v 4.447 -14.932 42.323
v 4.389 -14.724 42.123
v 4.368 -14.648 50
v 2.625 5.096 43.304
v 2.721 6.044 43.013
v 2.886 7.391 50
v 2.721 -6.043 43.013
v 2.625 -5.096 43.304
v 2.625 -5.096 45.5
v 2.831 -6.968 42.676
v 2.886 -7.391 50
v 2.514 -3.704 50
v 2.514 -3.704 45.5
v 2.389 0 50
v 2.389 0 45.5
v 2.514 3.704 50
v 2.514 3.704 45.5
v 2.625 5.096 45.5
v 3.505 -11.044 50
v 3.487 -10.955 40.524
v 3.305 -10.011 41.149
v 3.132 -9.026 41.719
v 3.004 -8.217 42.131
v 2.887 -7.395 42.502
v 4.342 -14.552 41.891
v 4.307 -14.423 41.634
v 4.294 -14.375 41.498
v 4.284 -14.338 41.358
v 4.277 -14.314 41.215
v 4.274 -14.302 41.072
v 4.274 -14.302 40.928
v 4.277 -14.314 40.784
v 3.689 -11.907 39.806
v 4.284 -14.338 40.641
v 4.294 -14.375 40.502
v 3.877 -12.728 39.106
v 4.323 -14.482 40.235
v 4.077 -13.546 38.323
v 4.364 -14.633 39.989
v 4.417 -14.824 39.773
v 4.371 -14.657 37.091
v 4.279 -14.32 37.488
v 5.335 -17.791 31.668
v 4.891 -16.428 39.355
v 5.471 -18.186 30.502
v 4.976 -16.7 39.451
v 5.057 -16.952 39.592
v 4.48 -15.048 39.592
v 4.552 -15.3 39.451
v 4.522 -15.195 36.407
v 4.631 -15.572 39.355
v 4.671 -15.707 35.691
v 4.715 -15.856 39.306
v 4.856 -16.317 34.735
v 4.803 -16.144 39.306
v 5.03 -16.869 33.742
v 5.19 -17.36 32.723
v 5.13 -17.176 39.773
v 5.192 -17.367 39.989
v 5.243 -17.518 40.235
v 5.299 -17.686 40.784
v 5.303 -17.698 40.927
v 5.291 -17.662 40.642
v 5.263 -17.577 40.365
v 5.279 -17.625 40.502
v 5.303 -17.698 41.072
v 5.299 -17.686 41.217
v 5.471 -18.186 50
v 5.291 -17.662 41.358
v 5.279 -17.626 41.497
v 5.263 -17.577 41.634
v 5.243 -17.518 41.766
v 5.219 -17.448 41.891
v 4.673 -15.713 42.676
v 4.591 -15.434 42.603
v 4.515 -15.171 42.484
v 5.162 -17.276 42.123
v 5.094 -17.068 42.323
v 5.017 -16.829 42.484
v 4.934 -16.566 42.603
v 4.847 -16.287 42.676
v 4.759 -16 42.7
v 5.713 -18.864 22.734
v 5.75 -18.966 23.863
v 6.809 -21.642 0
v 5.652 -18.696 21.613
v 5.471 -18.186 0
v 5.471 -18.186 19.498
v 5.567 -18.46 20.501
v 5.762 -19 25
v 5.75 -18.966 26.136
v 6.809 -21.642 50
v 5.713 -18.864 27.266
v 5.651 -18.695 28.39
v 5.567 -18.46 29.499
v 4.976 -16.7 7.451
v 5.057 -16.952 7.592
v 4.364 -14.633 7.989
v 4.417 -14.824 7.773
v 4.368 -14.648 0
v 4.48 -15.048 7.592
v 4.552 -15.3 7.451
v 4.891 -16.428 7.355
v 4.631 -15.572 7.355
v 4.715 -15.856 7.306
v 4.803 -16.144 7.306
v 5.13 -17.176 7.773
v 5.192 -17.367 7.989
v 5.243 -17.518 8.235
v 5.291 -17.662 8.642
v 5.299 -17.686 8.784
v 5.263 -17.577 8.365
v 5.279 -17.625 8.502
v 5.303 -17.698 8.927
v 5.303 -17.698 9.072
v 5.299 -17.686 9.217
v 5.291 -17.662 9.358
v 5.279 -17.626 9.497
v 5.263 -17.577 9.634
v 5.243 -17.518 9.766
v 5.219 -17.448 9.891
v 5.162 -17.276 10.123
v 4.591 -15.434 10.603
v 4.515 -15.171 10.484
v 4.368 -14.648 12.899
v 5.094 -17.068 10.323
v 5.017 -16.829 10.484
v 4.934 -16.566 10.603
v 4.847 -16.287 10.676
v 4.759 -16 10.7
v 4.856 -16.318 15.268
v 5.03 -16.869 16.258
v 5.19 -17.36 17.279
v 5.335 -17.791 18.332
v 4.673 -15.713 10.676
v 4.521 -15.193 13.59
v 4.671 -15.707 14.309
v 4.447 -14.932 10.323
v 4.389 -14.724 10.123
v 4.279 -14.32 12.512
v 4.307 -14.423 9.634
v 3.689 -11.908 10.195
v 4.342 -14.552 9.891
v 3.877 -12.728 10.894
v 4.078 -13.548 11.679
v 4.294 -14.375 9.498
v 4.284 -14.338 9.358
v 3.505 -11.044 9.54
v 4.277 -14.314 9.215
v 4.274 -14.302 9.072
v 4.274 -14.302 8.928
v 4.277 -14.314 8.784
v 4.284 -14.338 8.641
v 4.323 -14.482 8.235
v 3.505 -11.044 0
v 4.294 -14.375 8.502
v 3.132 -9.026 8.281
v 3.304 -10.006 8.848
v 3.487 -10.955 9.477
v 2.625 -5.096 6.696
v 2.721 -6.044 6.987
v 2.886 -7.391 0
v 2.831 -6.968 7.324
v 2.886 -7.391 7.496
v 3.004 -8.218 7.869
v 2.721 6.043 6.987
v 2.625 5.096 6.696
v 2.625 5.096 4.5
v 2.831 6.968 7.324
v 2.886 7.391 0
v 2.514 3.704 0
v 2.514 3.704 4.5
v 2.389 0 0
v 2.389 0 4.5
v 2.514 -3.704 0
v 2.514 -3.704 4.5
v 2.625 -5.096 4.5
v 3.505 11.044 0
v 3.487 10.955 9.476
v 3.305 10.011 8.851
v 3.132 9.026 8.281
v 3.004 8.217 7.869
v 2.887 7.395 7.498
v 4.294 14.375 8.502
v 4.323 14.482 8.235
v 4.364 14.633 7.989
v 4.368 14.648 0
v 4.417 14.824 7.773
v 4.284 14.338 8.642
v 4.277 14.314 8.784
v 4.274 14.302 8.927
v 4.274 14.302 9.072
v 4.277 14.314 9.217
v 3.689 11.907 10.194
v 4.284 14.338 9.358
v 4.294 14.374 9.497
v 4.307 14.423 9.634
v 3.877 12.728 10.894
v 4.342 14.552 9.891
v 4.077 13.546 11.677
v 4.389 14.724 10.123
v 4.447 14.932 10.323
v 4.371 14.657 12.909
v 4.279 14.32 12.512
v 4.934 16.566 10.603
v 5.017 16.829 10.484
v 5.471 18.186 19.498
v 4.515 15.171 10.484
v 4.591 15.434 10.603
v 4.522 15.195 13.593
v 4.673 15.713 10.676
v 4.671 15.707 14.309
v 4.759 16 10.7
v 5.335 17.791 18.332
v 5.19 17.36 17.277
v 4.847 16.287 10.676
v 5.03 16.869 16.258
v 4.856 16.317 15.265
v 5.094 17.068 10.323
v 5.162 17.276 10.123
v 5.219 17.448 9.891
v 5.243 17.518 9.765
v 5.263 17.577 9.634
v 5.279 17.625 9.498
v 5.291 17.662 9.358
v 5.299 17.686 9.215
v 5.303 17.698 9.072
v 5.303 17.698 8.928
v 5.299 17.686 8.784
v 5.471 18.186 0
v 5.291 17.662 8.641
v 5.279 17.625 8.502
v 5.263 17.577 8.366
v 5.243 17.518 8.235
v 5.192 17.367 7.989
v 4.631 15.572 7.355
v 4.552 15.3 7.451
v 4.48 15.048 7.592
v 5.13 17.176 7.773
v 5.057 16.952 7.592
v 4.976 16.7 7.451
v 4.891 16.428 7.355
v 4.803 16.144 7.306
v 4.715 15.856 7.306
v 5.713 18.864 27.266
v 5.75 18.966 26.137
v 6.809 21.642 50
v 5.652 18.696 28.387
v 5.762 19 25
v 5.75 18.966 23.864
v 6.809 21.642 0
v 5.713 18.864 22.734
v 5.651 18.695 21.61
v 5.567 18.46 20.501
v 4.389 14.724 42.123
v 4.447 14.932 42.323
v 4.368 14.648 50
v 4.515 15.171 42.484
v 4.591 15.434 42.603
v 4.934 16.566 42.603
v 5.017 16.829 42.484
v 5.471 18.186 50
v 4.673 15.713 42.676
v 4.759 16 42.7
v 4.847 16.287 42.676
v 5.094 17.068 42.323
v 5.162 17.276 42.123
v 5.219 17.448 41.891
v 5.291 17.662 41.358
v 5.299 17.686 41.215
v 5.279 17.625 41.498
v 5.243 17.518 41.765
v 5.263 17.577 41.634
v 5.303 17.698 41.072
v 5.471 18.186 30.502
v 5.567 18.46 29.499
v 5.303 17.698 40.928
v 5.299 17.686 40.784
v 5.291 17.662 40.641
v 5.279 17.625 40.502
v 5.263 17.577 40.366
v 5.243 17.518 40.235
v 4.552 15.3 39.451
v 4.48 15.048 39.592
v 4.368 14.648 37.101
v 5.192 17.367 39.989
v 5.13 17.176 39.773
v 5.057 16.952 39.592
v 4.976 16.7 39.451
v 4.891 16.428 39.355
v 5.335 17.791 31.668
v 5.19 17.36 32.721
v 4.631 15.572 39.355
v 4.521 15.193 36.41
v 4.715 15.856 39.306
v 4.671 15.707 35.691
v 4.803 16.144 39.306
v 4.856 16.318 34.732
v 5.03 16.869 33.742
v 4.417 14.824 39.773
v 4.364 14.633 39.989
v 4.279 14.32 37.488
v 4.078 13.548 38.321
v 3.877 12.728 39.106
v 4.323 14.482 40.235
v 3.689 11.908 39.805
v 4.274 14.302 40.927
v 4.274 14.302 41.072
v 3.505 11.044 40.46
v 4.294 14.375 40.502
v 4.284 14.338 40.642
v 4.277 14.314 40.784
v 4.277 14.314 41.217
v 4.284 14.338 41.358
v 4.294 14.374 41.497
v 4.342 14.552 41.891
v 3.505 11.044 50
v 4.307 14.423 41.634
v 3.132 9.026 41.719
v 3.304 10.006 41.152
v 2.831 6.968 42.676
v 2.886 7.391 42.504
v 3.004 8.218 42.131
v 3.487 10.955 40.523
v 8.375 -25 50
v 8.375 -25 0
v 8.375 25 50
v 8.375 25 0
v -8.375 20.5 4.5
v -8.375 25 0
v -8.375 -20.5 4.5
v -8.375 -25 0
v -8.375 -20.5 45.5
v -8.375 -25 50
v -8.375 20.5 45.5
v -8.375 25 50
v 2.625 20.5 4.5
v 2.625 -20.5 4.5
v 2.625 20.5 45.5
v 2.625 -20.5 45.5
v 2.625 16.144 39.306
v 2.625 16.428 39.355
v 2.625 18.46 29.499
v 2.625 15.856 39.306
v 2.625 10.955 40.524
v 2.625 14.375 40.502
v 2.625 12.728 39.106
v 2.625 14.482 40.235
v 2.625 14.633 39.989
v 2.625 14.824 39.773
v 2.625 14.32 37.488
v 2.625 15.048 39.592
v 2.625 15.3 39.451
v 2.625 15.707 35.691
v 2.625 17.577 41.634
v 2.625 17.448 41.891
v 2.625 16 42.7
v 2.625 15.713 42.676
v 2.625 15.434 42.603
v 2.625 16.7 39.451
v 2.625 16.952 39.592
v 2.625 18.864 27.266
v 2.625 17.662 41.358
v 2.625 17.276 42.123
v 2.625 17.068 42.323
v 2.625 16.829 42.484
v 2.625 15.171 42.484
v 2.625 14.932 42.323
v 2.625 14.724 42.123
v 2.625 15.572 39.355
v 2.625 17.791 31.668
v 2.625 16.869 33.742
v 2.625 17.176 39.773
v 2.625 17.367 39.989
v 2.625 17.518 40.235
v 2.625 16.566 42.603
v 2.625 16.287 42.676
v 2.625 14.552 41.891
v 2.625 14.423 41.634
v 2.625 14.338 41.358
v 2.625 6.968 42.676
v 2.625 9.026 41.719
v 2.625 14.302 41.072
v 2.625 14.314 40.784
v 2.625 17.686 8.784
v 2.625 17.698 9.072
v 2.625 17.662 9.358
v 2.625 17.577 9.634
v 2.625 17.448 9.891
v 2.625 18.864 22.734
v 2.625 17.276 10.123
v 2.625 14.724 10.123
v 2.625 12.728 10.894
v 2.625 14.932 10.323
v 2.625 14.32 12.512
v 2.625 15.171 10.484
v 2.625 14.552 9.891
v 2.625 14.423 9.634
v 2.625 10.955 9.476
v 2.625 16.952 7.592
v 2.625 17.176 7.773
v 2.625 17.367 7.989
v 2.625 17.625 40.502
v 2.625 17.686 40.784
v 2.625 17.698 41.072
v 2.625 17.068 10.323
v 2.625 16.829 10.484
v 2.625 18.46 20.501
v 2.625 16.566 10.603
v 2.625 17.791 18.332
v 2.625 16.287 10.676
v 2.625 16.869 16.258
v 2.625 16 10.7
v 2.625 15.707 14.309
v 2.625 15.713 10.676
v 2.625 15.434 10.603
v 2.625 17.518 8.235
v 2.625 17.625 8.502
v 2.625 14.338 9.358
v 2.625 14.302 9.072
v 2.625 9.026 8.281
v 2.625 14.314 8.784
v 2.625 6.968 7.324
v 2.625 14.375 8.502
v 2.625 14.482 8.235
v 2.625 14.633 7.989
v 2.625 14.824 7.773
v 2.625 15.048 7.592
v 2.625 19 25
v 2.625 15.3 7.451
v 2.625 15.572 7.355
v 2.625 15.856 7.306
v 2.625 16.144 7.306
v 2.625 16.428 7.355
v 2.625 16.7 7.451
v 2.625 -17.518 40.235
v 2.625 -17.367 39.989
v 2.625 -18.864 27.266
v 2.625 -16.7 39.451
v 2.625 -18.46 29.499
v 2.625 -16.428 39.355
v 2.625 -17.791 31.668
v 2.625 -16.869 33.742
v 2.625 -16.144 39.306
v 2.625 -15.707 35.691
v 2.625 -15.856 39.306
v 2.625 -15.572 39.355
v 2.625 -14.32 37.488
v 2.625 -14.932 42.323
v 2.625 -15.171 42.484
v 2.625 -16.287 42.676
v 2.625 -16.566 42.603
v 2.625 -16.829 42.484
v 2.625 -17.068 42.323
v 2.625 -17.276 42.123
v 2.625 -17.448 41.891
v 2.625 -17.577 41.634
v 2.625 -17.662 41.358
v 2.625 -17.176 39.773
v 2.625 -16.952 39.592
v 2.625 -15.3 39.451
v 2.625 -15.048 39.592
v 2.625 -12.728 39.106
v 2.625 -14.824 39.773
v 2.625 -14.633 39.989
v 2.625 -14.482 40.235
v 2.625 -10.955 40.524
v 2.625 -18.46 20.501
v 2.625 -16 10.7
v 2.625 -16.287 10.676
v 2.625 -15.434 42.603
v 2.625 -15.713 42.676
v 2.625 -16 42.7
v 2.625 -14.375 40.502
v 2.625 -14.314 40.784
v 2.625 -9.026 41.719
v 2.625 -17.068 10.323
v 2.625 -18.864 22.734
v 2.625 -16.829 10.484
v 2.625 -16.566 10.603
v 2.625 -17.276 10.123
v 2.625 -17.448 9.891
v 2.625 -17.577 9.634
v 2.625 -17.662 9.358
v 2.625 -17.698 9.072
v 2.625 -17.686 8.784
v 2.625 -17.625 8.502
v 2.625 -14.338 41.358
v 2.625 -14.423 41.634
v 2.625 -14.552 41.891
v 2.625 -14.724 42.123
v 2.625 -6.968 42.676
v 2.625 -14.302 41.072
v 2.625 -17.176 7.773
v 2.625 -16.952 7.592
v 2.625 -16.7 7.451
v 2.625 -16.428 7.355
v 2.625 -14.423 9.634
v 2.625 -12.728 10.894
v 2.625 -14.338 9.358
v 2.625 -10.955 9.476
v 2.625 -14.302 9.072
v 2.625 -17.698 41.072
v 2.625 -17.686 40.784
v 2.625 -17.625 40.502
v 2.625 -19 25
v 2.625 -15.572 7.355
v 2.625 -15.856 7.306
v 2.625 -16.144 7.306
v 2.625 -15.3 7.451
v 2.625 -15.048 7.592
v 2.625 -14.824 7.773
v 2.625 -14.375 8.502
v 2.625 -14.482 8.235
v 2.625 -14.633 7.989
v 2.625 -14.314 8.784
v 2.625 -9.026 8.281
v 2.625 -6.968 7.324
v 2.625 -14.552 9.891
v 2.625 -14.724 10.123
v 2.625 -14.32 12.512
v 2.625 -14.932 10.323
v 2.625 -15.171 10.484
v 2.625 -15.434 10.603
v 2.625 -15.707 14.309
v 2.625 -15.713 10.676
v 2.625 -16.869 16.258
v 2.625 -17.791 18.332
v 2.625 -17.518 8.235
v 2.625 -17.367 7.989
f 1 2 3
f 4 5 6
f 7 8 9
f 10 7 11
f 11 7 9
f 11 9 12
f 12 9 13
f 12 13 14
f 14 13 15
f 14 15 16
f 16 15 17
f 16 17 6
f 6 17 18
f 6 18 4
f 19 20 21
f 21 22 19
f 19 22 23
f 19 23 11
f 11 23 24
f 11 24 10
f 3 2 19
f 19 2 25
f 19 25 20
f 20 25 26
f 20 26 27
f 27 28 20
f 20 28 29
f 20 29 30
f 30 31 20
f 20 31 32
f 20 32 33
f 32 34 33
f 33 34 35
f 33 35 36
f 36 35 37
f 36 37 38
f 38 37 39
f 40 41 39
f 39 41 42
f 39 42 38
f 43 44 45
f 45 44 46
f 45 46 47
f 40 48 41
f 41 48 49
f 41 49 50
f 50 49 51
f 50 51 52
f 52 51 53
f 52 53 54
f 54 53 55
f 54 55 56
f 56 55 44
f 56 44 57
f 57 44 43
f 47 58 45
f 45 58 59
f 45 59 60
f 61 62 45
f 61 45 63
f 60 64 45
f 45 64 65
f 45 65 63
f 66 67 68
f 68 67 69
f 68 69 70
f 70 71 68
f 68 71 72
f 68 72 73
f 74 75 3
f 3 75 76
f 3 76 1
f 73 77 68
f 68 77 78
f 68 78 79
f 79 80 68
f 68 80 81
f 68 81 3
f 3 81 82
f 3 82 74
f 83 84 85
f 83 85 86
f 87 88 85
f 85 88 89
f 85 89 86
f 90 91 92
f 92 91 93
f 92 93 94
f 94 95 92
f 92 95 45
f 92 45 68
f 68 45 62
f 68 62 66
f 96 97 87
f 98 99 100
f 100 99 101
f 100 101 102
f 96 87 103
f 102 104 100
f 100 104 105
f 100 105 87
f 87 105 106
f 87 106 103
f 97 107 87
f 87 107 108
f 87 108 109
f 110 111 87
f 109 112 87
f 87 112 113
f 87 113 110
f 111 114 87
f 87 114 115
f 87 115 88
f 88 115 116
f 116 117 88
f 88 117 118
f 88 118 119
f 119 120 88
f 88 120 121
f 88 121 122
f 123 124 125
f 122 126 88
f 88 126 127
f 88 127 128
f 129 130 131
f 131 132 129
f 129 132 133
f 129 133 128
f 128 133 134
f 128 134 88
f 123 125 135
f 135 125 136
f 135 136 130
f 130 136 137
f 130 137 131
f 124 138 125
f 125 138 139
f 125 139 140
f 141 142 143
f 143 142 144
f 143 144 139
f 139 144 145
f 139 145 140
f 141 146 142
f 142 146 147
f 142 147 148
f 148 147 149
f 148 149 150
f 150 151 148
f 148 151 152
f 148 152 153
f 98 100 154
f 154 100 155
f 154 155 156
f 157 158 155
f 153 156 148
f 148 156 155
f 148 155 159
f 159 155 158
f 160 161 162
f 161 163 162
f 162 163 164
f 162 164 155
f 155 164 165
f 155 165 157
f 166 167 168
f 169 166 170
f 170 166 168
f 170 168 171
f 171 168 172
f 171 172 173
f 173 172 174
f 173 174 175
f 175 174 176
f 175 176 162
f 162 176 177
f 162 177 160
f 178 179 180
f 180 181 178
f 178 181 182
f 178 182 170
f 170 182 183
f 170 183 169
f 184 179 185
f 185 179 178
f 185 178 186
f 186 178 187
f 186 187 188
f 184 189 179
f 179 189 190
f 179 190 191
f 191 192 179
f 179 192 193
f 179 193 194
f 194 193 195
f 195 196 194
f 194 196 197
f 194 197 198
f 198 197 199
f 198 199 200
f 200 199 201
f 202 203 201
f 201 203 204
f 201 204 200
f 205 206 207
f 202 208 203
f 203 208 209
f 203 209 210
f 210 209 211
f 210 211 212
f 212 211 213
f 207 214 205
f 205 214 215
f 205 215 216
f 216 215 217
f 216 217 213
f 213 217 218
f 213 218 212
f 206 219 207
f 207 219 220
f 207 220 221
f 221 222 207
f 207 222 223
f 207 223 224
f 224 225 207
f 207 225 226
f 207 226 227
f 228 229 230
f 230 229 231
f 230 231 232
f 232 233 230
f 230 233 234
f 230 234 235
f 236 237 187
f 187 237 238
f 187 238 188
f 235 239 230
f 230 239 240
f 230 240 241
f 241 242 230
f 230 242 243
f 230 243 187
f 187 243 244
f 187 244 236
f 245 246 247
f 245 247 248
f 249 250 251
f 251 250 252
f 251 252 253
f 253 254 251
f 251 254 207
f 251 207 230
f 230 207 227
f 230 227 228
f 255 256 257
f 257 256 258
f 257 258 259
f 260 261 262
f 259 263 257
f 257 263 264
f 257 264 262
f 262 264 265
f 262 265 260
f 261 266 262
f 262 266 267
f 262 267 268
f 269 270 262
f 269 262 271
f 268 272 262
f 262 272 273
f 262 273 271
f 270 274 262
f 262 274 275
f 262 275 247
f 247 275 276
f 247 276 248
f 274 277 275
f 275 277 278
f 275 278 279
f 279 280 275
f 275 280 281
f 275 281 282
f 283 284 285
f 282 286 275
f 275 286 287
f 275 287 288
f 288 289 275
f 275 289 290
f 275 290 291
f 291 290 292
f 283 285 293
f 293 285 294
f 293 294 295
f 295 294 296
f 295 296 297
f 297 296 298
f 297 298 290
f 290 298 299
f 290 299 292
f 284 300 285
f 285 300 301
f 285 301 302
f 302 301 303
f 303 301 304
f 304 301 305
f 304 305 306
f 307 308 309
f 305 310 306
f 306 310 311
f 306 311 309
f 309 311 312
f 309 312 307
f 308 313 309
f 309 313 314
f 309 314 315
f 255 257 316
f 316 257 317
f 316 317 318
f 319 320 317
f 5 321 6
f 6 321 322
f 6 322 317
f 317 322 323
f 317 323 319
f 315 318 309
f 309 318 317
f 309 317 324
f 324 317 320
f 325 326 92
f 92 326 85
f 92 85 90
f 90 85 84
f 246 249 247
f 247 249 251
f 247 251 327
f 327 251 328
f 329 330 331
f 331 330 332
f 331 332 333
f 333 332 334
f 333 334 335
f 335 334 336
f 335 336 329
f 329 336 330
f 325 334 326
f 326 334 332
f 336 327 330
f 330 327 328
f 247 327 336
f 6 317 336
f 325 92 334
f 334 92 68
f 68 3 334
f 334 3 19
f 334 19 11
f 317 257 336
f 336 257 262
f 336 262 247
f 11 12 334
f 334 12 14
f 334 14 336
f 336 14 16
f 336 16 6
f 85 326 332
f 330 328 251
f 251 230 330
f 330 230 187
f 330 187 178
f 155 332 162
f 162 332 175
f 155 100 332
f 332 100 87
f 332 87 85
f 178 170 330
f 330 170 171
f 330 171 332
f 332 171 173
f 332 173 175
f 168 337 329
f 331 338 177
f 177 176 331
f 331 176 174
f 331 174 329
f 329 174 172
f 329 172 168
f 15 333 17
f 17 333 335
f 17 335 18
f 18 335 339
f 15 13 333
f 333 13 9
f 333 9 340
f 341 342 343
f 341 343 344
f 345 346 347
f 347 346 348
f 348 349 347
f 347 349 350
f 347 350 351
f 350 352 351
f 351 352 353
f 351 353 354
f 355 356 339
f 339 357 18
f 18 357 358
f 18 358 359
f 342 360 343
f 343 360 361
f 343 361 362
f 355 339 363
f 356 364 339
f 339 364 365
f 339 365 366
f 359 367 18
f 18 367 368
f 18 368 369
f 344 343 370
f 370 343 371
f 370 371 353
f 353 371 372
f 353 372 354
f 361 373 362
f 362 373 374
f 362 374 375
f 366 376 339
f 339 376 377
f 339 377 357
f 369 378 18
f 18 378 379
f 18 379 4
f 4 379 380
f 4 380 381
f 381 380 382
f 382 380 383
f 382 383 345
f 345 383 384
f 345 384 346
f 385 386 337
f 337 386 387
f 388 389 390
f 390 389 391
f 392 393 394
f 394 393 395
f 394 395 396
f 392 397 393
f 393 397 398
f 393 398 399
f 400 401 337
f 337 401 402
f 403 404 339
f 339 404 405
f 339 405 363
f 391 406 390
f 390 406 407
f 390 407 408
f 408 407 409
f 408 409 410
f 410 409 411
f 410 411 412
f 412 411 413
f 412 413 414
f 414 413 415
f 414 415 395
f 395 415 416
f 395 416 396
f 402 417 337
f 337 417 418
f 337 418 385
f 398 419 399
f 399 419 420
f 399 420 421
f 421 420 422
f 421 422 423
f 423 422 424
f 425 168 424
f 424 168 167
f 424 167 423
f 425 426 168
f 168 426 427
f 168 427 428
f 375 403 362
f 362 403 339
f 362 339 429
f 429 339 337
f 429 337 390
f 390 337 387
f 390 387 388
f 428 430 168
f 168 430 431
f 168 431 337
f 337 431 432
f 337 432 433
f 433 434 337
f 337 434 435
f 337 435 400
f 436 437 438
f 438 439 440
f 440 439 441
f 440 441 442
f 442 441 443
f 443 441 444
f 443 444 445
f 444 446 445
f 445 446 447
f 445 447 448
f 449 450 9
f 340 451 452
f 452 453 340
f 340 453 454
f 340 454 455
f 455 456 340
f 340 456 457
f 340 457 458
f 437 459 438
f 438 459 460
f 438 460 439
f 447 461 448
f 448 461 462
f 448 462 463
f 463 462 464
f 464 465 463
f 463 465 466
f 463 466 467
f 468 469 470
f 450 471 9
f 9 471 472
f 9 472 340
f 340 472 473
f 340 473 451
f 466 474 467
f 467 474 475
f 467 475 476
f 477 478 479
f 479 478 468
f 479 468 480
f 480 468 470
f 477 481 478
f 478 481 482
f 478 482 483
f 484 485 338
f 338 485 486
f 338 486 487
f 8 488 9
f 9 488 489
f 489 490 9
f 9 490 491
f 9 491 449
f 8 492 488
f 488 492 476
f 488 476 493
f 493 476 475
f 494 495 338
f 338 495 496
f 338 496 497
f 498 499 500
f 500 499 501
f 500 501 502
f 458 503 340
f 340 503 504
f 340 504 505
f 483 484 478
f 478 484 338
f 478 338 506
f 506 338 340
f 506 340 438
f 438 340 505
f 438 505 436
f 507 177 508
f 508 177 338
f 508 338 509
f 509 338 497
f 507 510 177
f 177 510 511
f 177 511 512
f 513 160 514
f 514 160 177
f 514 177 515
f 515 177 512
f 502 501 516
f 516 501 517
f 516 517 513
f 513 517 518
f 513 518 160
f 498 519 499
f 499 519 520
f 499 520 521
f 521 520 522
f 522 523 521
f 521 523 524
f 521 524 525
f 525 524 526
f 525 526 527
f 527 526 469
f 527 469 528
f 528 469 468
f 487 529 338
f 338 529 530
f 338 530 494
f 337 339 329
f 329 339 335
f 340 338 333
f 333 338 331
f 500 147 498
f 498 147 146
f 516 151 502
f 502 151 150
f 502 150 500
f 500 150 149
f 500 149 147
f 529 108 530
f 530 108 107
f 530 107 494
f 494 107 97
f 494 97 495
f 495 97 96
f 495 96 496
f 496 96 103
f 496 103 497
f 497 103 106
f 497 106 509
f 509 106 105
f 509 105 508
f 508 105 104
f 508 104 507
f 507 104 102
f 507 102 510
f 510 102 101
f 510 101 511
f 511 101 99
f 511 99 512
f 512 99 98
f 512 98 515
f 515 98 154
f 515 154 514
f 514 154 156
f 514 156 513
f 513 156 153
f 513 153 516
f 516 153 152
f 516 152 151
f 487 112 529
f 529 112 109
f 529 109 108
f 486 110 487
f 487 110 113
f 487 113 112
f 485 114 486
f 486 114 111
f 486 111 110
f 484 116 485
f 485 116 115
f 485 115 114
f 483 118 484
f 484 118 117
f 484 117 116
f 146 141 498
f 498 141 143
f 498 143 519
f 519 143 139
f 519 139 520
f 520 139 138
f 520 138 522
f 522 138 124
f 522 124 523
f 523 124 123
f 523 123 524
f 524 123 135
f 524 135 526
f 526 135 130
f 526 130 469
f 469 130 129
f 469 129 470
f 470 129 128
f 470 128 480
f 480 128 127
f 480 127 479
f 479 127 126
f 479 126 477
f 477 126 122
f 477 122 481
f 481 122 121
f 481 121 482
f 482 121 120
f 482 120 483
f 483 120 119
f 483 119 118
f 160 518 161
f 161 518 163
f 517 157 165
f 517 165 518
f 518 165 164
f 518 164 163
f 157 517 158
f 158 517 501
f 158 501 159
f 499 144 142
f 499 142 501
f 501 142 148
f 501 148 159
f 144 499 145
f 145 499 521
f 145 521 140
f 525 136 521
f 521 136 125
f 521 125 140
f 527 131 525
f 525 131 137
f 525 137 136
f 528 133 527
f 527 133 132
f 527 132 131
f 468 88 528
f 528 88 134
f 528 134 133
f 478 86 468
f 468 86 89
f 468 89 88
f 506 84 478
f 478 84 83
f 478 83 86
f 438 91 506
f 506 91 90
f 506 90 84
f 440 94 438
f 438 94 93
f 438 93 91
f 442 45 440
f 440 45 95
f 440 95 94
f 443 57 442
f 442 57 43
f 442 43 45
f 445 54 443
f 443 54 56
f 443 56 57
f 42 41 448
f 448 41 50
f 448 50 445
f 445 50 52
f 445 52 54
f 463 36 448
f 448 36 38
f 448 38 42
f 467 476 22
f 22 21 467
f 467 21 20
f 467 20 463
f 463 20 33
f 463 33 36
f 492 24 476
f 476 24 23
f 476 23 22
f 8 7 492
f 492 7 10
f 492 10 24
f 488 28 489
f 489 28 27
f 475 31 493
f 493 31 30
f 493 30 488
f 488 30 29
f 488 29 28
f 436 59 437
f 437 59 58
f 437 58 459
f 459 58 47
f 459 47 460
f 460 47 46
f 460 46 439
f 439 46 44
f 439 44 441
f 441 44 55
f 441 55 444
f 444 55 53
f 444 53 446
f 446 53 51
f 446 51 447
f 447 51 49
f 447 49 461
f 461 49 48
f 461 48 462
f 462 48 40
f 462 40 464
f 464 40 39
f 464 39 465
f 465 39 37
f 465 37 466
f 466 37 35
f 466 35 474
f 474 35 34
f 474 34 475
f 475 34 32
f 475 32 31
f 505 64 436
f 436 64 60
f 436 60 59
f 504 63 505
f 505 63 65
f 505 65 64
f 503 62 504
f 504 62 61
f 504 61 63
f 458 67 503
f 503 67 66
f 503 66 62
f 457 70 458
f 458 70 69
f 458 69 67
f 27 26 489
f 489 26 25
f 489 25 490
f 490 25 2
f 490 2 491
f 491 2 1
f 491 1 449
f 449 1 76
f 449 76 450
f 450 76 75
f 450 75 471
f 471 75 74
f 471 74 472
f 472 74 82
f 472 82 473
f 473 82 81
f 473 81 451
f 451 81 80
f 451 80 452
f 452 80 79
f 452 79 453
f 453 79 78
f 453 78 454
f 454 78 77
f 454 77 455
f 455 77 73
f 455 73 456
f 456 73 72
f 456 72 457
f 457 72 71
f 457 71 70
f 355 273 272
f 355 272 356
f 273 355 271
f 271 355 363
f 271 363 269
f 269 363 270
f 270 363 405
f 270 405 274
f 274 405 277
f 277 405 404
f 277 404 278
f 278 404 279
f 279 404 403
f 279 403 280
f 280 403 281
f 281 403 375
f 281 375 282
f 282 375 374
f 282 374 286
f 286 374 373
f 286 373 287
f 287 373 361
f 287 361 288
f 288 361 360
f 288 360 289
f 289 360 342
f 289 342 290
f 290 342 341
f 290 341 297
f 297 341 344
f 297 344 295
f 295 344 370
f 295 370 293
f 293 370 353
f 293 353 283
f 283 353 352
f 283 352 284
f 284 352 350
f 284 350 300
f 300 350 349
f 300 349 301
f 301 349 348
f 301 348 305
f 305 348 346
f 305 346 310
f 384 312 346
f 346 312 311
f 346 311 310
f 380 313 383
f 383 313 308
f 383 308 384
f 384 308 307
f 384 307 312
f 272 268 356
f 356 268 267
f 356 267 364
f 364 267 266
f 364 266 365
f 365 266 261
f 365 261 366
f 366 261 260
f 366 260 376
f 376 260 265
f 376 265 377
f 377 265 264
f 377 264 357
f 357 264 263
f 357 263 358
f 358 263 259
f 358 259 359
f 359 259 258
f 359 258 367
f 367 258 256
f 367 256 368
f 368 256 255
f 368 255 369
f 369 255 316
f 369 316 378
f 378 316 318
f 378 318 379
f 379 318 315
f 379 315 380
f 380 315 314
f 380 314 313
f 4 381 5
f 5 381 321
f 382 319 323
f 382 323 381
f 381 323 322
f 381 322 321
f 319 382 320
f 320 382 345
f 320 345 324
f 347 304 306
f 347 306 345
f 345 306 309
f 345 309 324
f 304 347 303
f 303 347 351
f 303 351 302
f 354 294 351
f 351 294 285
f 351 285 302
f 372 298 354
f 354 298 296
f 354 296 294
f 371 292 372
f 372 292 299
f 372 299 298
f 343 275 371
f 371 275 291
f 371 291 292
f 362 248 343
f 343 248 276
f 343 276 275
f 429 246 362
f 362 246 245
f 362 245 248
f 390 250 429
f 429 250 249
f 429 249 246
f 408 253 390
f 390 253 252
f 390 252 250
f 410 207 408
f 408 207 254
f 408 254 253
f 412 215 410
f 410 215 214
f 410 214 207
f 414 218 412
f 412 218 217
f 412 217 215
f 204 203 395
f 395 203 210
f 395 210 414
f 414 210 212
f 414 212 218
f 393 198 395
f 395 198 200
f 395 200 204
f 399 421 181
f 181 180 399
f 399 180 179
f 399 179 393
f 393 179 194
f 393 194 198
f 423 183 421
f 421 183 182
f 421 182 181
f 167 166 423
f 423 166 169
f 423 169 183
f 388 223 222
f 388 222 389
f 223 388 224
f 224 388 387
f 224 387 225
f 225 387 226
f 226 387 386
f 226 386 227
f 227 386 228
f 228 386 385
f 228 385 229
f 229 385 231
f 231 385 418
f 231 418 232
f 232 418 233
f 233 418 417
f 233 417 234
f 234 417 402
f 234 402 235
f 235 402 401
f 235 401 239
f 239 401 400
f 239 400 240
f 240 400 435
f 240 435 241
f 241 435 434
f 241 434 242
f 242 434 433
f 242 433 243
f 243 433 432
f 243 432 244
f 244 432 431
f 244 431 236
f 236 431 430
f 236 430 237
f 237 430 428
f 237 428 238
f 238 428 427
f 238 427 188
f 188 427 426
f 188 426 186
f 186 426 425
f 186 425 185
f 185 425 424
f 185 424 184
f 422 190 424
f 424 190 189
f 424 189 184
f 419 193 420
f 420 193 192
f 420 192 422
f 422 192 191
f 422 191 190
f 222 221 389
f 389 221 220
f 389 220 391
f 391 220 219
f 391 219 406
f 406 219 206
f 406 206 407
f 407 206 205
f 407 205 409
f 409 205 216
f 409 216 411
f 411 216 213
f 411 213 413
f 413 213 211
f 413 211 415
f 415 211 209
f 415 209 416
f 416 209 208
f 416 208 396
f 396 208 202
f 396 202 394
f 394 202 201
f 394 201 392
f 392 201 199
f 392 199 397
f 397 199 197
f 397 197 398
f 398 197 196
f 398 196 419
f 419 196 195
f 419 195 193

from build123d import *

# Parameters (mm, degrees)
SALIENTE_EXTRUIR1_DEPTH = 50
CROQUIS2_W              = 41
CROQUIS2_H              = 41
CORTAR_EXTRUIR1_DEPTH   = 11
CROQUIS3_R              = 1.7
CROQUIS3_R_2            = 19
CORTAR_EXTRUIR2_DEPTH   = 11


with BuildPart() as part:
    # Croquis1 → Saliente-Extruir1 (new body)
    with BuildSketch(Plane.XY):
        with BuildLine():
            Line((8.375, -25), (-8.375, -25))
            Line((-8.375, -25), (-8.375, 25))
            Line((-8.375, 25), (8.375, 25))
            ThreePointArc((8.375, 25), (2.389225586, 0), (8.375, -25))
        make_face()
    extrude(amount=SALIENTE_EXTRUIR1_DEPTH)

    # Croquis2 → Cortar-Extruir1 (cut)
    with BuildSketch(Plane.ZY.offset(8.375)):
        with Locations((25, 0)):
            Rectangle(CROQUIS2_W, CROQUIS2_H)
    extrude(amount=-CORTAR_EXTRUIR1_DEPTH, mode=Mode.SUBTRACT)

    # Croquis3 → Cortar-Extruir2 (cut)
    with BuildSketch(Plane.ZY.offset(-2.625)):
        with Locations((9, 16)):
            Circle(CROQUIS3_R)
        with Locations((41, 16)):
            Circle(CROQUIS3_R)
        with Locations((41, -16)):
            Circle(CROQUIS3_R)
        with Locations((9, -16)):
            Circle(CROQUIS3_R)
        with Locations((25, 0)):
            Circle(CROQUIS3_R_2)
    extrude(amount=-CORTAR_EXTRUIR2_DEPTH, mode=Mode.SUBTRACT)


solid = part.part
